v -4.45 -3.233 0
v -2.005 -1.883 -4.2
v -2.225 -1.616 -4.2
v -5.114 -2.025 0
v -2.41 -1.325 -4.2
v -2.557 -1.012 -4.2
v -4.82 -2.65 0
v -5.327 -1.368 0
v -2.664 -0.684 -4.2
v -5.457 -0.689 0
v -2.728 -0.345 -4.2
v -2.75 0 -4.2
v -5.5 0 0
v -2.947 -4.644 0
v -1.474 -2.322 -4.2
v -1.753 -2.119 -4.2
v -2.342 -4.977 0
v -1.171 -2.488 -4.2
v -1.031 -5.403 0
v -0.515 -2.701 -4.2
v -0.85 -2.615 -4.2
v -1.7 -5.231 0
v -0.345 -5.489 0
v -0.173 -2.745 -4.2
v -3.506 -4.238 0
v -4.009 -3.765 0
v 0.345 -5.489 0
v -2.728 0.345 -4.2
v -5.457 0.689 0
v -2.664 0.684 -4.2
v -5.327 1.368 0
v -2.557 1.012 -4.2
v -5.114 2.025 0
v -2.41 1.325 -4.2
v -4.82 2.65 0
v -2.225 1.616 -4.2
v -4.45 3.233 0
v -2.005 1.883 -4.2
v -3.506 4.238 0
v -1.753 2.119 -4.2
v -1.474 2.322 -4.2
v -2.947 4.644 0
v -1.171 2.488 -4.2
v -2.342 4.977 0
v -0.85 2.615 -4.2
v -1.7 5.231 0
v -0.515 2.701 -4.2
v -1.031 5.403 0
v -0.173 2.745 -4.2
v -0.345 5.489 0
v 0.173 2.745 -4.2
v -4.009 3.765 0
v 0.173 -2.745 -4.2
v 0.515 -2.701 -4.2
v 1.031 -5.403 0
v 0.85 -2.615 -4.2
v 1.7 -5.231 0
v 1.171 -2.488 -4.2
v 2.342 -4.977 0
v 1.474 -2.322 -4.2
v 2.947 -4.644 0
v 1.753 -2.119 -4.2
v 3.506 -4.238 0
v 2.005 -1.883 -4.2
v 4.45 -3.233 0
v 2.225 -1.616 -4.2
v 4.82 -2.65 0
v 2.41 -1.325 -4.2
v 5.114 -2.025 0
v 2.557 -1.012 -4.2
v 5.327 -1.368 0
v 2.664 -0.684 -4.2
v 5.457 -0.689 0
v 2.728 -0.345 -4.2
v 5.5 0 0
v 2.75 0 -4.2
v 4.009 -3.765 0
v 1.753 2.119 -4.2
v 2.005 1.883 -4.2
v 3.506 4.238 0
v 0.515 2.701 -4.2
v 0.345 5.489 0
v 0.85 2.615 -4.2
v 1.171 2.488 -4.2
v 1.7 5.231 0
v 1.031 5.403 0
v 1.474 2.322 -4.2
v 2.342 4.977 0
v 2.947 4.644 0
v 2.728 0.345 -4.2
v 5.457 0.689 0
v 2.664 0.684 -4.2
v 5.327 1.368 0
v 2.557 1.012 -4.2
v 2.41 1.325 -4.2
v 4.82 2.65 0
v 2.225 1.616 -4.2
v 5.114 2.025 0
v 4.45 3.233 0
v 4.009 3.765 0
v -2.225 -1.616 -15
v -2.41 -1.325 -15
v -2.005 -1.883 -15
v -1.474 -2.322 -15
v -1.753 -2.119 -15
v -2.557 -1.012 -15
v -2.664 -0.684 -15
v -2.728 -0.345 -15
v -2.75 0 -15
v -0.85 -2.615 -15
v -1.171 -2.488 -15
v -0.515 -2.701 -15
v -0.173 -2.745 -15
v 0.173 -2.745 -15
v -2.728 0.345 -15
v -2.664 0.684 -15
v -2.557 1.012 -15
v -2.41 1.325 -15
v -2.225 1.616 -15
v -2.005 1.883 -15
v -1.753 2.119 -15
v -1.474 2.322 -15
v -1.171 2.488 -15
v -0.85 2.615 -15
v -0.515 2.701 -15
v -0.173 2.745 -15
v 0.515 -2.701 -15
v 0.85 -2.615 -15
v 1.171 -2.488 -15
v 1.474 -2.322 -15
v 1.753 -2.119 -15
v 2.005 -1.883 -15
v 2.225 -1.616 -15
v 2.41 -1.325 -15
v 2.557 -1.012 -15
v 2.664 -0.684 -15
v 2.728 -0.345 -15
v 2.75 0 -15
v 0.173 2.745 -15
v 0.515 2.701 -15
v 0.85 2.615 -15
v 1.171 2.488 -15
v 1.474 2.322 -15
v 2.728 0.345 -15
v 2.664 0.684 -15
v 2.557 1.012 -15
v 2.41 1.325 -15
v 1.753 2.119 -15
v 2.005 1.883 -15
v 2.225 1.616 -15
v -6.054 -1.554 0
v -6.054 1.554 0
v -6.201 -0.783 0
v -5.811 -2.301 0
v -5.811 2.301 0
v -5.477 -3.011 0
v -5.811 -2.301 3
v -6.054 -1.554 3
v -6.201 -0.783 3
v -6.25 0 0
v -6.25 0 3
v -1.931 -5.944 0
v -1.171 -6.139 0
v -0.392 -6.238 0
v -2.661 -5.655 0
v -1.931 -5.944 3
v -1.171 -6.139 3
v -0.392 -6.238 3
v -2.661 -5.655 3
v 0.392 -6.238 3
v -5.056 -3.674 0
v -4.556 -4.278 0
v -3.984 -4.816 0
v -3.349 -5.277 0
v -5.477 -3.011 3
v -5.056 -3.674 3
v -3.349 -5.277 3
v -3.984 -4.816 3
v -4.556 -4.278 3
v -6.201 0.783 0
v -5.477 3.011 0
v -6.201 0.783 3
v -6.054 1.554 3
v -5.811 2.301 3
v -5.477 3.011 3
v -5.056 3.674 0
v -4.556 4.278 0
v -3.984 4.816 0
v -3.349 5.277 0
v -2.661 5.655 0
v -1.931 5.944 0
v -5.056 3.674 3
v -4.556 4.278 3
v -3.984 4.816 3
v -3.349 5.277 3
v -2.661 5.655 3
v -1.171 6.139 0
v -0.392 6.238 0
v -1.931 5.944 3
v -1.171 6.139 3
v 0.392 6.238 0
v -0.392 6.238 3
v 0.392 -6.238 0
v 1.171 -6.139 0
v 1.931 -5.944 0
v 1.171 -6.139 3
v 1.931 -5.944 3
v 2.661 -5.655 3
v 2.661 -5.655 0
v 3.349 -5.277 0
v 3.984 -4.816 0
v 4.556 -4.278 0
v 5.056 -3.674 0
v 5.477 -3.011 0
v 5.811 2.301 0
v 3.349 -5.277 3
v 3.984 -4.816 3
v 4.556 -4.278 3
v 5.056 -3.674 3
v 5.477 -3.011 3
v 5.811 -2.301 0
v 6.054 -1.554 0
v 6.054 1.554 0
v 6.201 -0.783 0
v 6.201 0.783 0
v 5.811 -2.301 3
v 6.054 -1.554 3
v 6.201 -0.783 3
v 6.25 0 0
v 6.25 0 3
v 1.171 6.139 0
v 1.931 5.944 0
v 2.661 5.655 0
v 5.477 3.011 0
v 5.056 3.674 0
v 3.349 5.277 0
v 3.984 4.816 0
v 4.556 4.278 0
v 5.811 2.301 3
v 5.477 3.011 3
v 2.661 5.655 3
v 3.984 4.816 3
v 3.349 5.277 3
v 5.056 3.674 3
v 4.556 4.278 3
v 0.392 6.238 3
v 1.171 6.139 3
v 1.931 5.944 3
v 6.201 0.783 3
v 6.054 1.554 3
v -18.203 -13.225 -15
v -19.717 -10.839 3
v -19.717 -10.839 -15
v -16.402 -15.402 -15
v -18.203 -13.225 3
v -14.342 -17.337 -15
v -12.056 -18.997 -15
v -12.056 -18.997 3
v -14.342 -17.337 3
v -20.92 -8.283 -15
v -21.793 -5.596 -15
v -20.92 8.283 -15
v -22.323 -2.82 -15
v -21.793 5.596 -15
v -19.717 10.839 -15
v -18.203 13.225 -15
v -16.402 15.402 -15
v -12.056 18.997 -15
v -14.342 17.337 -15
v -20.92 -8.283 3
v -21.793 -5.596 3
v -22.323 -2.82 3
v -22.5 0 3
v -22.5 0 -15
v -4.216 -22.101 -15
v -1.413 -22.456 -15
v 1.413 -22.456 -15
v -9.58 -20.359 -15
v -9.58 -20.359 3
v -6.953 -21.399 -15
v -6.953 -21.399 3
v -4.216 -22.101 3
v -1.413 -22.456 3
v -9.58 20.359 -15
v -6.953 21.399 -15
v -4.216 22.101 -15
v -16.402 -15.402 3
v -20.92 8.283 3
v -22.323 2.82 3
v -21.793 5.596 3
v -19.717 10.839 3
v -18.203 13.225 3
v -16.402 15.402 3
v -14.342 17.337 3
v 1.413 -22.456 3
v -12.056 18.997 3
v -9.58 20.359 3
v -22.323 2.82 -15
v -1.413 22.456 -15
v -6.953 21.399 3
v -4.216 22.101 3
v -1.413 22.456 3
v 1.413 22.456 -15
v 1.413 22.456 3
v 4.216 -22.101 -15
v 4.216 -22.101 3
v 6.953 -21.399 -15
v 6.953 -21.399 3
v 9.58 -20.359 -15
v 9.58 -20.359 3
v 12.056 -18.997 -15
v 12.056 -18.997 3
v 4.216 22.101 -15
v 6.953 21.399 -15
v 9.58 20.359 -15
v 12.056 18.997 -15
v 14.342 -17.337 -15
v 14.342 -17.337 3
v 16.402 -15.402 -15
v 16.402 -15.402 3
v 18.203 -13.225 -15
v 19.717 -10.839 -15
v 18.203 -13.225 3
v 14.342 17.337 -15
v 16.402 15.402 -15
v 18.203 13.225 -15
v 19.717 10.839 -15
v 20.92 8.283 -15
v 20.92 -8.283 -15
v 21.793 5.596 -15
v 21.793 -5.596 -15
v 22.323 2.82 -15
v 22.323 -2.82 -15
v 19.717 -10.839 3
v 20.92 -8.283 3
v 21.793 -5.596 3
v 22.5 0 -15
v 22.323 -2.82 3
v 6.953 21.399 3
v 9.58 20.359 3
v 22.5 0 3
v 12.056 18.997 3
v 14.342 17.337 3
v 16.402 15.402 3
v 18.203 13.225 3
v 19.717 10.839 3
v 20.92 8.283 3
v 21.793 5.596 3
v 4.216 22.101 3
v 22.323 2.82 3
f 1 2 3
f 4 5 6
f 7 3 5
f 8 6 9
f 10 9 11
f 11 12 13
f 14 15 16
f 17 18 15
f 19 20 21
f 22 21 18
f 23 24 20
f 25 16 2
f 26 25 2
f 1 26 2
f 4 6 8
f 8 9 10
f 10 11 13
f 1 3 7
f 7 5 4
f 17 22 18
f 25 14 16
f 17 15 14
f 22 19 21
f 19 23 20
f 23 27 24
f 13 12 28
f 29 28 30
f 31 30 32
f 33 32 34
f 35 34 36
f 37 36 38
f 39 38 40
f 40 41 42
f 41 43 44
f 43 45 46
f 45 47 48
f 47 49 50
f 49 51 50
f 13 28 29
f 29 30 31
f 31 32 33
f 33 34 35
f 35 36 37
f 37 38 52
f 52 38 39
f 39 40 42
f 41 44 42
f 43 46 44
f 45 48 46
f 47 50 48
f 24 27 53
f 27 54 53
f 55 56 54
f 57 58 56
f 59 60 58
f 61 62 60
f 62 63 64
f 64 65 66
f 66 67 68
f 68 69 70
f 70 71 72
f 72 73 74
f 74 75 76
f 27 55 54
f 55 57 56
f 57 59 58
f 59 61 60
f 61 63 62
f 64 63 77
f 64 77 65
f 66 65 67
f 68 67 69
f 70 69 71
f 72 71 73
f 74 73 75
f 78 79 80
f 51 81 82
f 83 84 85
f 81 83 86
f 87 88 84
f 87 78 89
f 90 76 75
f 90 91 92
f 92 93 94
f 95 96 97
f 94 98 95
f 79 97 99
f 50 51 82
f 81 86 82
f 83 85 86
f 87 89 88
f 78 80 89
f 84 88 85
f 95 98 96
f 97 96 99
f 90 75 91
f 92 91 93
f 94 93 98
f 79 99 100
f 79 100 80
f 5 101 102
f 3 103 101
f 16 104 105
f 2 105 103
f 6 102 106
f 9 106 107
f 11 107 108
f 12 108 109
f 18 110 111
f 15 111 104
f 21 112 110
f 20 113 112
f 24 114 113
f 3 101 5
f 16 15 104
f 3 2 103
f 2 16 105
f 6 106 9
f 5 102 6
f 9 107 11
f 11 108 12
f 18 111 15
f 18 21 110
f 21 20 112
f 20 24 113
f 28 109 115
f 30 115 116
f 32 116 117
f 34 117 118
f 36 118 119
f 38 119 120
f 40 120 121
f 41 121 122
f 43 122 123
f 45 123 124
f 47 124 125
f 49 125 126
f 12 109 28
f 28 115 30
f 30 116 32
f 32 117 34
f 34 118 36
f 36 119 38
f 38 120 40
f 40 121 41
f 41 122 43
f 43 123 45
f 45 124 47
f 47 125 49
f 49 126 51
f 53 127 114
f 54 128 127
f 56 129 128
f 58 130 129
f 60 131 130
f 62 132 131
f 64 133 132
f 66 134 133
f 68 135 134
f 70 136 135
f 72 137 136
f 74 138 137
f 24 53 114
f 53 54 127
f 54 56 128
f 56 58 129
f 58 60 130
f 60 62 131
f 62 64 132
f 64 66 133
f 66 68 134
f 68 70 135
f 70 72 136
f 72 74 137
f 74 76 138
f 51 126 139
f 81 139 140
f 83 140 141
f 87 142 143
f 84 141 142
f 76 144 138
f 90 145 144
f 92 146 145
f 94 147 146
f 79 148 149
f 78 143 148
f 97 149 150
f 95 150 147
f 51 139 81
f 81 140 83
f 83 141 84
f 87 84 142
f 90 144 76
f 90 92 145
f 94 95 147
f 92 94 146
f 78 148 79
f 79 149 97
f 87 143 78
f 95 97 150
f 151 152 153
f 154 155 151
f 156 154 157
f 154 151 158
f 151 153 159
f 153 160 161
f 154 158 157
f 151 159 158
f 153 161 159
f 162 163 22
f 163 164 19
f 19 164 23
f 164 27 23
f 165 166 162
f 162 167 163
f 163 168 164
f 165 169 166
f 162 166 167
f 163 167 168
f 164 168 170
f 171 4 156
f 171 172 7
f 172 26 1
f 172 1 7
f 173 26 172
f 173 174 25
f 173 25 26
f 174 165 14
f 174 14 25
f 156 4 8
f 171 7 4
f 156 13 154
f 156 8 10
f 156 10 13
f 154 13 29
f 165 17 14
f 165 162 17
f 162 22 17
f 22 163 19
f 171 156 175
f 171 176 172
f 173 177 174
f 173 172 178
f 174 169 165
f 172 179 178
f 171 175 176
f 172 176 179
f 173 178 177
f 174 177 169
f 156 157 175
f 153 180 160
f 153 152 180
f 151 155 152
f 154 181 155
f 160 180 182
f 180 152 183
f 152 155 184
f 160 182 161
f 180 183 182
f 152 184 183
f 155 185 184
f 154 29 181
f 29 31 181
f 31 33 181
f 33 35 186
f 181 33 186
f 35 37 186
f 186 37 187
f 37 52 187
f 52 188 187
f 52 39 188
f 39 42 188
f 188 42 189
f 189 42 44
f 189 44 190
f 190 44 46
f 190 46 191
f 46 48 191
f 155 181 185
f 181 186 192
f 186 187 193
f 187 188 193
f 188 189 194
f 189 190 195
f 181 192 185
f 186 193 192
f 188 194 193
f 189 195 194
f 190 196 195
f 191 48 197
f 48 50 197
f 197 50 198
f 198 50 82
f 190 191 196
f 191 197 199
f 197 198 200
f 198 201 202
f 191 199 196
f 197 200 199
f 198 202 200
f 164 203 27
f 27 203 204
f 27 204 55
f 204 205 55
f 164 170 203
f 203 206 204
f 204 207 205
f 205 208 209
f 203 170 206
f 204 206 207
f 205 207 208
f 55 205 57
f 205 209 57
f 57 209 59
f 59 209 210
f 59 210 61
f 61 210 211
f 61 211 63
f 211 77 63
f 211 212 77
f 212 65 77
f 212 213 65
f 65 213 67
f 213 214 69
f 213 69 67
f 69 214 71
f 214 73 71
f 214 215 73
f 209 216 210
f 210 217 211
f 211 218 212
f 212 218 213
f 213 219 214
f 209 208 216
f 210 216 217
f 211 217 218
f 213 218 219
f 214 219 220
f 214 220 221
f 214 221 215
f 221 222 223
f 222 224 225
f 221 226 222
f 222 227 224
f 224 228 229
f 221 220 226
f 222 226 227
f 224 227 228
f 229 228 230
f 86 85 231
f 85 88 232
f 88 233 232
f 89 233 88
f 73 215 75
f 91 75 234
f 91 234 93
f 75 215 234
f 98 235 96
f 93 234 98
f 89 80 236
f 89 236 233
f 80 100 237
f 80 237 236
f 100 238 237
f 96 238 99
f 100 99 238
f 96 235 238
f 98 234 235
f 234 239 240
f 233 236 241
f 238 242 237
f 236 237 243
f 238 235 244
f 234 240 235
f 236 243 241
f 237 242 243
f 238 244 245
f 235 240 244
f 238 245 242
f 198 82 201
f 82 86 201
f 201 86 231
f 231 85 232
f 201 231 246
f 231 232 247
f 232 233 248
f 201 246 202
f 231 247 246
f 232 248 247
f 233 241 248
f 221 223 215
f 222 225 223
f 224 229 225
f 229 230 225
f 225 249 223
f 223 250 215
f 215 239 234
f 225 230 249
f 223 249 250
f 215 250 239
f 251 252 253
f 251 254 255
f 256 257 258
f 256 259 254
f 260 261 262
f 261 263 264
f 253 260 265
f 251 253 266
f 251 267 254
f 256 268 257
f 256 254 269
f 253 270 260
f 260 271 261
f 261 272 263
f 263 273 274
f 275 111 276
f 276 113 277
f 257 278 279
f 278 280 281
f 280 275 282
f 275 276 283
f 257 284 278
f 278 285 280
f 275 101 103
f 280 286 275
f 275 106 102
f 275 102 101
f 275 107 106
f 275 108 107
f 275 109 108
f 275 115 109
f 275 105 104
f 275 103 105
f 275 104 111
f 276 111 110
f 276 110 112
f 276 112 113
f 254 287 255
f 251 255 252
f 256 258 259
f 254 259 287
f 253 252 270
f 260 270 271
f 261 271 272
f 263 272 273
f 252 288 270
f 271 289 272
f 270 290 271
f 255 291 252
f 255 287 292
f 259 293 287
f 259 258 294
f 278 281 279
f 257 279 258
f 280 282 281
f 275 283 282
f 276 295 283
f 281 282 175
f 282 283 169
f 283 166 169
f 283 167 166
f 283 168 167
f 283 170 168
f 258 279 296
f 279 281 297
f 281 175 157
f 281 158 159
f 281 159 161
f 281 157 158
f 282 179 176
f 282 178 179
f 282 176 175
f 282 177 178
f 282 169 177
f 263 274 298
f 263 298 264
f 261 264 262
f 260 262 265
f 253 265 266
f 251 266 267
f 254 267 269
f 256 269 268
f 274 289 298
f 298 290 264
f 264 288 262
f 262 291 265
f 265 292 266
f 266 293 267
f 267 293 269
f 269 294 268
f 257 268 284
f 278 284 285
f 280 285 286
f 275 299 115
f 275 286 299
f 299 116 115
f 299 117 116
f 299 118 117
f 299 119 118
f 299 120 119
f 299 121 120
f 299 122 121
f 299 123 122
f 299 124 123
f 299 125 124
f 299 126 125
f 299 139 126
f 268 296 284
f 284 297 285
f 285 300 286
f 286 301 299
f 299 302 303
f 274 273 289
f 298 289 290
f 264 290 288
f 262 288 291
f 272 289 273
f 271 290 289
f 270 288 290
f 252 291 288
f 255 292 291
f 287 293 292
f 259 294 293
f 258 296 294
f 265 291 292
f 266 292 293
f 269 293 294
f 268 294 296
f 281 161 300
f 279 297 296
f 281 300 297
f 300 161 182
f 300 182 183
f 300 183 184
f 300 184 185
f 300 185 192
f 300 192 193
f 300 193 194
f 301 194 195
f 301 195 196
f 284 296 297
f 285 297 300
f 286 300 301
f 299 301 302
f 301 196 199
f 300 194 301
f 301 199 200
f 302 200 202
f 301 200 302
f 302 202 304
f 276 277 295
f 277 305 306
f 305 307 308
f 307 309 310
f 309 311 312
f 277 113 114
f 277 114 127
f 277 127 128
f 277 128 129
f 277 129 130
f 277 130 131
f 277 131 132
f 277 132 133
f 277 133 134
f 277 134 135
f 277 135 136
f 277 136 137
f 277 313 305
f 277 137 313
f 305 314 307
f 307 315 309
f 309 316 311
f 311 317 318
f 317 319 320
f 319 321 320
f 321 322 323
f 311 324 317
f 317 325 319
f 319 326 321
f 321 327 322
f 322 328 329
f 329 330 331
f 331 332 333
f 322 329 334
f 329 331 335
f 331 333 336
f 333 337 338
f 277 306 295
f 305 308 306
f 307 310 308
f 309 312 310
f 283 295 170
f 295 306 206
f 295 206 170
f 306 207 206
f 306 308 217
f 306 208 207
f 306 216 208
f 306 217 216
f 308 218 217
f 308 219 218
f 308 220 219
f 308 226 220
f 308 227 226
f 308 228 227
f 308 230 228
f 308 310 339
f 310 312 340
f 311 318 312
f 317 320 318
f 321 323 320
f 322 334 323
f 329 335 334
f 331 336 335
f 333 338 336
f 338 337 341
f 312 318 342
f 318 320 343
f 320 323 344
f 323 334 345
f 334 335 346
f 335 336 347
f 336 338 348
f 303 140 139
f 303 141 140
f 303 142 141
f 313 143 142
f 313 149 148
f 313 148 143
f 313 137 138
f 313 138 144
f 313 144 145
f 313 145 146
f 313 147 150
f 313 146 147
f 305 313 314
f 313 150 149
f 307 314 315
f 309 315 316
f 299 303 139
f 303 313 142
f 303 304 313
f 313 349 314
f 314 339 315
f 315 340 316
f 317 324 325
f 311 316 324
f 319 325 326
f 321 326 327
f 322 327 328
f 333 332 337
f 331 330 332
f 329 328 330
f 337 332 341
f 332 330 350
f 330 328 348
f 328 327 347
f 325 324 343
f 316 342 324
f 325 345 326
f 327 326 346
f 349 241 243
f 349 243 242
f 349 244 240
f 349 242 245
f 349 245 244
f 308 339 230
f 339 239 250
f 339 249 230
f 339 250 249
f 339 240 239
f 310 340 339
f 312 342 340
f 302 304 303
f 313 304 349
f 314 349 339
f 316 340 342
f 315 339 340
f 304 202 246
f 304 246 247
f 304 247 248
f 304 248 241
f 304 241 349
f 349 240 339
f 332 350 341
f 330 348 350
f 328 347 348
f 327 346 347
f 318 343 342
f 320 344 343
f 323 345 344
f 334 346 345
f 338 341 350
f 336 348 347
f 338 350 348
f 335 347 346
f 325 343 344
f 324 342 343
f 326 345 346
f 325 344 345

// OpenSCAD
$fn = 50;


difference() {
	union() {
		translate(v = [0, 0, -15.0000000000]) {
			cylinder(h = 18, r = 22.5000000000);
		}
	}
	union() {
		translate(v = [0, 0, 0]) {
			rotate(a = [0, 0, 0]) {
				difference() {
					union() {
						translate(v = [0, 0, -18.0000000000]) {
							cylinder(h = 18, r = 2.2500000000);
						}
						translate(v = [0, 0, -4.2000000000]) {
							cylinder(h = 4.2000000000, r1 = 2.7500000000, r2 = 5.5000000000);
						}
						translate(v = [0, 0, -18.0000000000]) {
							cylinder(h = 18, r = 2.7500000000);
						}
						translate(v = [0, 0, -18.0000000000]) {
							cylinder(h = 18, r = 2.2500000000);
						}
					}
					union();
				}
			}
		}
		#cylinder(h = 3, r = 6.2500000000);
	}
}
